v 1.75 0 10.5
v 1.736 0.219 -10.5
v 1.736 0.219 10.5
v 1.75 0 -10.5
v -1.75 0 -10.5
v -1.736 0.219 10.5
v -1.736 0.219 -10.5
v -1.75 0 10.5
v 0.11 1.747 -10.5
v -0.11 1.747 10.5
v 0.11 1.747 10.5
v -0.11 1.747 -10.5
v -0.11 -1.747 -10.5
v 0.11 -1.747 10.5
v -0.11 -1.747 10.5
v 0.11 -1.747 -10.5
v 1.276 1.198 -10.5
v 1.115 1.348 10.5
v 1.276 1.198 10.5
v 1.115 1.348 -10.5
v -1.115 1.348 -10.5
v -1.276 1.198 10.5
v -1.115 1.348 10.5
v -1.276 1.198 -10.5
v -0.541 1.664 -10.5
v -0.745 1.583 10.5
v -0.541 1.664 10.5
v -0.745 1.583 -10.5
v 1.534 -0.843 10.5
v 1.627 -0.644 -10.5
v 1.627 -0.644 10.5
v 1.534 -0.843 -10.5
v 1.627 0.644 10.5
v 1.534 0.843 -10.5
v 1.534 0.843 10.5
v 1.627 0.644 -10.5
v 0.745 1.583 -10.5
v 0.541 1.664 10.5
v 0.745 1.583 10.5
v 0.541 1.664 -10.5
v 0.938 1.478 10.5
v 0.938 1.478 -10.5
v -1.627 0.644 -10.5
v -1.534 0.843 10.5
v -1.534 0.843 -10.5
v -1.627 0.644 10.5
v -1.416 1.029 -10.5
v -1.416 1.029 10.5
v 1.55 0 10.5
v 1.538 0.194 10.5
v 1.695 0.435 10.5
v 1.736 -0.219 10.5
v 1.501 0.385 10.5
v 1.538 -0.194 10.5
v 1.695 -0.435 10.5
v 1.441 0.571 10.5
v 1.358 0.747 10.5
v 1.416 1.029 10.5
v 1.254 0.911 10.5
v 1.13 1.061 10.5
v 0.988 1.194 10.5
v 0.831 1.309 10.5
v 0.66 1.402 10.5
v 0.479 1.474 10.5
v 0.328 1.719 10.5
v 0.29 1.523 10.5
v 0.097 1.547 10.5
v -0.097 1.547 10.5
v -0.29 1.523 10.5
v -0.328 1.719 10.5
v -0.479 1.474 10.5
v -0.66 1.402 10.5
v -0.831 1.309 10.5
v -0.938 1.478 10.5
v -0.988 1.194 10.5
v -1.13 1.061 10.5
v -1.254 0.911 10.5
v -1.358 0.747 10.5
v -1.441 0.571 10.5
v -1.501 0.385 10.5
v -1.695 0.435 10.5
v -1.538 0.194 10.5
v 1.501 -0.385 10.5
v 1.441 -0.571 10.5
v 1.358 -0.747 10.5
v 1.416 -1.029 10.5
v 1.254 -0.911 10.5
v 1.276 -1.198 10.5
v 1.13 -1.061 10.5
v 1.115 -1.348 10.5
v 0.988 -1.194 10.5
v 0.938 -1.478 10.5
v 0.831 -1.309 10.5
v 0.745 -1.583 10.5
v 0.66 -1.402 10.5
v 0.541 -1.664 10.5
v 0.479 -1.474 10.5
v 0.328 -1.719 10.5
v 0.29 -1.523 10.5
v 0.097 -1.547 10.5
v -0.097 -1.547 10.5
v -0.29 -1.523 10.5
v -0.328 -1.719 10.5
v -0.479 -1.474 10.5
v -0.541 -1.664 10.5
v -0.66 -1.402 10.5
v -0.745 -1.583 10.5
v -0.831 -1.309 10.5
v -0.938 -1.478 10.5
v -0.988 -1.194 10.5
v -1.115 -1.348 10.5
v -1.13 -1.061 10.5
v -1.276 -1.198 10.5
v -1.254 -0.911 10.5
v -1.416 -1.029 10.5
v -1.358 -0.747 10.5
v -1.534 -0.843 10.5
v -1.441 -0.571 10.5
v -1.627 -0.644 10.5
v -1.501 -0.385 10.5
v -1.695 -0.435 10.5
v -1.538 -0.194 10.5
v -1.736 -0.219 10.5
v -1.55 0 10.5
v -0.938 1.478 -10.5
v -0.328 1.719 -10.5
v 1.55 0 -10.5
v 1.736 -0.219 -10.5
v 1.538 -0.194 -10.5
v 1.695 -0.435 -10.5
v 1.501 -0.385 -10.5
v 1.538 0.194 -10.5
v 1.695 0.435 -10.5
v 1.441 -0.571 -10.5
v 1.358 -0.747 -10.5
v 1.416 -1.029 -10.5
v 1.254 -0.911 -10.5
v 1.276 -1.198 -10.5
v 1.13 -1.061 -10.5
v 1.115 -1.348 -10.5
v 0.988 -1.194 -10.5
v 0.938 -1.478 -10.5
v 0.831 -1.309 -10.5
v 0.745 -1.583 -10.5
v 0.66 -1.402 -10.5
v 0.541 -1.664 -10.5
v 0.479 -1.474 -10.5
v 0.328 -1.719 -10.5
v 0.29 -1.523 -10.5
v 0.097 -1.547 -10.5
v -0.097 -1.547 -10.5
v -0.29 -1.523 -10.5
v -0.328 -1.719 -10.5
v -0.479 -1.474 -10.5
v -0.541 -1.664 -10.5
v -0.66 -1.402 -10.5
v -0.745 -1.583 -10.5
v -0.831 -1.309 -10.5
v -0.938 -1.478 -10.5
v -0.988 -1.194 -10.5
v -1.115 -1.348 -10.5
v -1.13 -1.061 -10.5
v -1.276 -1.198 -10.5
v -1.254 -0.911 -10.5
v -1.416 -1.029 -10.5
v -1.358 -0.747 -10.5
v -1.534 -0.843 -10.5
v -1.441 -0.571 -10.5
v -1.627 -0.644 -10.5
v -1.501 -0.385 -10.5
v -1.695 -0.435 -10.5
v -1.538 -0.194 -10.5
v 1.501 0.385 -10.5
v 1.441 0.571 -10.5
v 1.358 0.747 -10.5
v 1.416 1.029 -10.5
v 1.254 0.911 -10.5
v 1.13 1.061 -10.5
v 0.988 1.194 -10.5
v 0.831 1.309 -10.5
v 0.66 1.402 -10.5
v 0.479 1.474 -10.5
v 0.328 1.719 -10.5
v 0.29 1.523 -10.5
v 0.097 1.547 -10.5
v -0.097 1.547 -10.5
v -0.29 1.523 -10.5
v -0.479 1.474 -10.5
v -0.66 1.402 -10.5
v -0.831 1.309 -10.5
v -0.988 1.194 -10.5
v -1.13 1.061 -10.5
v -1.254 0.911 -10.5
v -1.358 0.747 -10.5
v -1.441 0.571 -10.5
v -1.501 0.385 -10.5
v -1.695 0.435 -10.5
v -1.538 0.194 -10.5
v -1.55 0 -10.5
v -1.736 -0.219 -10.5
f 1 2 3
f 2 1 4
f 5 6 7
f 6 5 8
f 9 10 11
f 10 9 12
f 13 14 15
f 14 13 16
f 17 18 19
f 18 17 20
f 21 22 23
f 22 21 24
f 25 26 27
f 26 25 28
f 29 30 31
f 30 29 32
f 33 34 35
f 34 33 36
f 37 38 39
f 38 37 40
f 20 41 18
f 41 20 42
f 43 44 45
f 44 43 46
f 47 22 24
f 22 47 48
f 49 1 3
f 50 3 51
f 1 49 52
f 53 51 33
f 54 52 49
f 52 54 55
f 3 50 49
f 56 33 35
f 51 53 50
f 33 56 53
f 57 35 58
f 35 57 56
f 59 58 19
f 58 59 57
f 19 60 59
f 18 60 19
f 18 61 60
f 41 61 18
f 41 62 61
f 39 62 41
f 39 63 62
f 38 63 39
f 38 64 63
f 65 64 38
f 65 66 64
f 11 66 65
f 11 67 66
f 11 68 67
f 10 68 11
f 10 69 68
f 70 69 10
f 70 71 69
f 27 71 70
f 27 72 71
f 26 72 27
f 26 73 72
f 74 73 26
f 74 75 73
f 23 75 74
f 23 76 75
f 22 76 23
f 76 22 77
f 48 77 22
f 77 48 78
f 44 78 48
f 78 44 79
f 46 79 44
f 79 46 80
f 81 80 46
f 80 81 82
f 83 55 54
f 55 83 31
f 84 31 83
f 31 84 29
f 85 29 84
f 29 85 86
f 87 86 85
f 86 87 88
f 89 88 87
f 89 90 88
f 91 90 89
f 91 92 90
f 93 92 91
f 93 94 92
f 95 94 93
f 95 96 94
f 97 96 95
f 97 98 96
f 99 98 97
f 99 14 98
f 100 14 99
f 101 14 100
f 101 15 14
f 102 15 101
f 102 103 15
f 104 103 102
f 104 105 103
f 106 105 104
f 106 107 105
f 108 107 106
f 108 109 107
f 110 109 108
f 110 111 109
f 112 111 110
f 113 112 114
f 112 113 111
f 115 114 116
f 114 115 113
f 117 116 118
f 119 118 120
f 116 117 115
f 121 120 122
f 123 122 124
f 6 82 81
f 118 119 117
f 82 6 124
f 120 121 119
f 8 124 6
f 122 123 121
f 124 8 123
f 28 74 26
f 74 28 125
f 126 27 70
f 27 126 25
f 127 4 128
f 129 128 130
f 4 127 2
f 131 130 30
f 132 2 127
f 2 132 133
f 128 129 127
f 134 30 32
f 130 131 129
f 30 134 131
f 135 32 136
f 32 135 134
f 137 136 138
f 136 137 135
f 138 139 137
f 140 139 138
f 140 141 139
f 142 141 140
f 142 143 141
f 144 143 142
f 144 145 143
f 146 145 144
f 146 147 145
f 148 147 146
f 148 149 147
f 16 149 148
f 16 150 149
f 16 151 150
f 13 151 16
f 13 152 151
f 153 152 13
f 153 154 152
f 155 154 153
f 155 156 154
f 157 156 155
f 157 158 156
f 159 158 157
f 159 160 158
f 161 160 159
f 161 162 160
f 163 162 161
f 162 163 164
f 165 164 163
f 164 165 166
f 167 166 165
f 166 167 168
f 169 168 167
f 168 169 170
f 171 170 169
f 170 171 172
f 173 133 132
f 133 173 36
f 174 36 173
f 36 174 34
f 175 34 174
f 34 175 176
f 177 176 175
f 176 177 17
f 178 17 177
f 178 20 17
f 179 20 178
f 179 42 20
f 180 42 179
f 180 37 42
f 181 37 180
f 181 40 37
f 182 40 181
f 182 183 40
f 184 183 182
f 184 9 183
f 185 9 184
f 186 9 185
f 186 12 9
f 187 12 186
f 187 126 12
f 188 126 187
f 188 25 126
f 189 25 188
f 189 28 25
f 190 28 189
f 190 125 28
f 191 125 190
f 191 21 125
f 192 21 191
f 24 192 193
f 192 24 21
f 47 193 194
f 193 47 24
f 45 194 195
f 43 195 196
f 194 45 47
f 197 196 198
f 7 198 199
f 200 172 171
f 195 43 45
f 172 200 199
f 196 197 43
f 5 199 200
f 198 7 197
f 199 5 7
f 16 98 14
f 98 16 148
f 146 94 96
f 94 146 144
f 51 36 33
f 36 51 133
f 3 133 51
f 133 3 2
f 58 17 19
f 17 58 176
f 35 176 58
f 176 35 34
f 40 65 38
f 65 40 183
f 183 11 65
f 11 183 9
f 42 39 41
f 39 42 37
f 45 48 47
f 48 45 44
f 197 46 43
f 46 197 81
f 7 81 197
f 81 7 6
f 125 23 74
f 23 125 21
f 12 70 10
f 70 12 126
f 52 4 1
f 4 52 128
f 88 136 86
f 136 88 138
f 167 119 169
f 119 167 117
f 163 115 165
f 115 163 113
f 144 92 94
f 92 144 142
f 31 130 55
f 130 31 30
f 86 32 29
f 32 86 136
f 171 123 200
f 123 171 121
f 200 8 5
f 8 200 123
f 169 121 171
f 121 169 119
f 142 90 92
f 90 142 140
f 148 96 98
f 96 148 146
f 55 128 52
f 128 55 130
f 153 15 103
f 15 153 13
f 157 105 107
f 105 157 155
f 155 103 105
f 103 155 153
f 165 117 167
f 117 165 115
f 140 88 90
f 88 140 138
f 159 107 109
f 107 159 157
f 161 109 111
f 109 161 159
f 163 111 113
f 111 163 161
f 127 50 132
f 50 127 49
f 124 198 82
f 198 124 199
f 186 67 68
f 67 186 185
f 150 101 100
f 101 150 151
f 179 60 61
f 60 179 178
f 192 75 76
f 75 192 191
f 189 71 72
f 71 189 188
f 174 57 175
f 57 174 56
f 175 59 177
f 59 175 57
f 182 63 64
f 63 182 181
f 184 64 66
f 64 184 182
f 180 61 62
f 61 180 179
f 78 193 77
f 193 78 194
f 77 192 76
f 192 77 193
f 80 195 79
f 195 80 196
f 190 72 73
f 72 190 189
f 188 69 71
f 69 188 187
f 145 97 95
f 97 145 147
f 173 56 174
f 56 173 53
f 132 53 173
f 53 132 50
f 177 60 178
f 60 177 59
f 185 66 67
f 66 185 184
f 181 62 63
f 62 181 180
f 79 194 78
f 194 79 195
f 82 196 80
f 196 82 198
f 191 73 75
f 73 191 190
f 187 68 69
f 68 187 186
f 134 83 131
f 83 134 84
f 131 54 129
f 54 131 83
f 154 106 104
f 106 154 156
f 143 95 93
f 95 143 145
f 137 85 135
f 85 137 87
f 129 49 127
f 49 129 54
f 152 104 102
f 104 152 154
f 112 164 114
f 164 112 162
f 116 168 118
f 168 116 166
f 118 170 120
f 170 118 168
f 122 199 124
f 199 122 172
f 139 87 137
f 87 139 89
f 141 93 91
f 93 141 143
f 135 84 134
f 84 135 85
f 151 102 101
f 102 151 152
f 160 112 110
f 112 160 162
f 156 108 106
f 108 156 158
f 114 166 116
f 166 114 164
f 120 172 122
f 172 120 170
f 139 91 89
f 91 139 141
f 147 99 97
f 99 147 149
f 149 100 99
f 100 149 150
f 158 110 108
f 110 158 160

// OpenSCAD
$fn = 50;


difference() {
	union() {
		translate(v = [0, 0, -10.5000000000]) {
			cylinder(h = 21, r = 1.7500000000);
		}
	}
	union() {
		translate(v = [0, 0, -100.0000000000]) {
			cylinder(h = 200, r = 1.5500000000);
		}
	}
}
